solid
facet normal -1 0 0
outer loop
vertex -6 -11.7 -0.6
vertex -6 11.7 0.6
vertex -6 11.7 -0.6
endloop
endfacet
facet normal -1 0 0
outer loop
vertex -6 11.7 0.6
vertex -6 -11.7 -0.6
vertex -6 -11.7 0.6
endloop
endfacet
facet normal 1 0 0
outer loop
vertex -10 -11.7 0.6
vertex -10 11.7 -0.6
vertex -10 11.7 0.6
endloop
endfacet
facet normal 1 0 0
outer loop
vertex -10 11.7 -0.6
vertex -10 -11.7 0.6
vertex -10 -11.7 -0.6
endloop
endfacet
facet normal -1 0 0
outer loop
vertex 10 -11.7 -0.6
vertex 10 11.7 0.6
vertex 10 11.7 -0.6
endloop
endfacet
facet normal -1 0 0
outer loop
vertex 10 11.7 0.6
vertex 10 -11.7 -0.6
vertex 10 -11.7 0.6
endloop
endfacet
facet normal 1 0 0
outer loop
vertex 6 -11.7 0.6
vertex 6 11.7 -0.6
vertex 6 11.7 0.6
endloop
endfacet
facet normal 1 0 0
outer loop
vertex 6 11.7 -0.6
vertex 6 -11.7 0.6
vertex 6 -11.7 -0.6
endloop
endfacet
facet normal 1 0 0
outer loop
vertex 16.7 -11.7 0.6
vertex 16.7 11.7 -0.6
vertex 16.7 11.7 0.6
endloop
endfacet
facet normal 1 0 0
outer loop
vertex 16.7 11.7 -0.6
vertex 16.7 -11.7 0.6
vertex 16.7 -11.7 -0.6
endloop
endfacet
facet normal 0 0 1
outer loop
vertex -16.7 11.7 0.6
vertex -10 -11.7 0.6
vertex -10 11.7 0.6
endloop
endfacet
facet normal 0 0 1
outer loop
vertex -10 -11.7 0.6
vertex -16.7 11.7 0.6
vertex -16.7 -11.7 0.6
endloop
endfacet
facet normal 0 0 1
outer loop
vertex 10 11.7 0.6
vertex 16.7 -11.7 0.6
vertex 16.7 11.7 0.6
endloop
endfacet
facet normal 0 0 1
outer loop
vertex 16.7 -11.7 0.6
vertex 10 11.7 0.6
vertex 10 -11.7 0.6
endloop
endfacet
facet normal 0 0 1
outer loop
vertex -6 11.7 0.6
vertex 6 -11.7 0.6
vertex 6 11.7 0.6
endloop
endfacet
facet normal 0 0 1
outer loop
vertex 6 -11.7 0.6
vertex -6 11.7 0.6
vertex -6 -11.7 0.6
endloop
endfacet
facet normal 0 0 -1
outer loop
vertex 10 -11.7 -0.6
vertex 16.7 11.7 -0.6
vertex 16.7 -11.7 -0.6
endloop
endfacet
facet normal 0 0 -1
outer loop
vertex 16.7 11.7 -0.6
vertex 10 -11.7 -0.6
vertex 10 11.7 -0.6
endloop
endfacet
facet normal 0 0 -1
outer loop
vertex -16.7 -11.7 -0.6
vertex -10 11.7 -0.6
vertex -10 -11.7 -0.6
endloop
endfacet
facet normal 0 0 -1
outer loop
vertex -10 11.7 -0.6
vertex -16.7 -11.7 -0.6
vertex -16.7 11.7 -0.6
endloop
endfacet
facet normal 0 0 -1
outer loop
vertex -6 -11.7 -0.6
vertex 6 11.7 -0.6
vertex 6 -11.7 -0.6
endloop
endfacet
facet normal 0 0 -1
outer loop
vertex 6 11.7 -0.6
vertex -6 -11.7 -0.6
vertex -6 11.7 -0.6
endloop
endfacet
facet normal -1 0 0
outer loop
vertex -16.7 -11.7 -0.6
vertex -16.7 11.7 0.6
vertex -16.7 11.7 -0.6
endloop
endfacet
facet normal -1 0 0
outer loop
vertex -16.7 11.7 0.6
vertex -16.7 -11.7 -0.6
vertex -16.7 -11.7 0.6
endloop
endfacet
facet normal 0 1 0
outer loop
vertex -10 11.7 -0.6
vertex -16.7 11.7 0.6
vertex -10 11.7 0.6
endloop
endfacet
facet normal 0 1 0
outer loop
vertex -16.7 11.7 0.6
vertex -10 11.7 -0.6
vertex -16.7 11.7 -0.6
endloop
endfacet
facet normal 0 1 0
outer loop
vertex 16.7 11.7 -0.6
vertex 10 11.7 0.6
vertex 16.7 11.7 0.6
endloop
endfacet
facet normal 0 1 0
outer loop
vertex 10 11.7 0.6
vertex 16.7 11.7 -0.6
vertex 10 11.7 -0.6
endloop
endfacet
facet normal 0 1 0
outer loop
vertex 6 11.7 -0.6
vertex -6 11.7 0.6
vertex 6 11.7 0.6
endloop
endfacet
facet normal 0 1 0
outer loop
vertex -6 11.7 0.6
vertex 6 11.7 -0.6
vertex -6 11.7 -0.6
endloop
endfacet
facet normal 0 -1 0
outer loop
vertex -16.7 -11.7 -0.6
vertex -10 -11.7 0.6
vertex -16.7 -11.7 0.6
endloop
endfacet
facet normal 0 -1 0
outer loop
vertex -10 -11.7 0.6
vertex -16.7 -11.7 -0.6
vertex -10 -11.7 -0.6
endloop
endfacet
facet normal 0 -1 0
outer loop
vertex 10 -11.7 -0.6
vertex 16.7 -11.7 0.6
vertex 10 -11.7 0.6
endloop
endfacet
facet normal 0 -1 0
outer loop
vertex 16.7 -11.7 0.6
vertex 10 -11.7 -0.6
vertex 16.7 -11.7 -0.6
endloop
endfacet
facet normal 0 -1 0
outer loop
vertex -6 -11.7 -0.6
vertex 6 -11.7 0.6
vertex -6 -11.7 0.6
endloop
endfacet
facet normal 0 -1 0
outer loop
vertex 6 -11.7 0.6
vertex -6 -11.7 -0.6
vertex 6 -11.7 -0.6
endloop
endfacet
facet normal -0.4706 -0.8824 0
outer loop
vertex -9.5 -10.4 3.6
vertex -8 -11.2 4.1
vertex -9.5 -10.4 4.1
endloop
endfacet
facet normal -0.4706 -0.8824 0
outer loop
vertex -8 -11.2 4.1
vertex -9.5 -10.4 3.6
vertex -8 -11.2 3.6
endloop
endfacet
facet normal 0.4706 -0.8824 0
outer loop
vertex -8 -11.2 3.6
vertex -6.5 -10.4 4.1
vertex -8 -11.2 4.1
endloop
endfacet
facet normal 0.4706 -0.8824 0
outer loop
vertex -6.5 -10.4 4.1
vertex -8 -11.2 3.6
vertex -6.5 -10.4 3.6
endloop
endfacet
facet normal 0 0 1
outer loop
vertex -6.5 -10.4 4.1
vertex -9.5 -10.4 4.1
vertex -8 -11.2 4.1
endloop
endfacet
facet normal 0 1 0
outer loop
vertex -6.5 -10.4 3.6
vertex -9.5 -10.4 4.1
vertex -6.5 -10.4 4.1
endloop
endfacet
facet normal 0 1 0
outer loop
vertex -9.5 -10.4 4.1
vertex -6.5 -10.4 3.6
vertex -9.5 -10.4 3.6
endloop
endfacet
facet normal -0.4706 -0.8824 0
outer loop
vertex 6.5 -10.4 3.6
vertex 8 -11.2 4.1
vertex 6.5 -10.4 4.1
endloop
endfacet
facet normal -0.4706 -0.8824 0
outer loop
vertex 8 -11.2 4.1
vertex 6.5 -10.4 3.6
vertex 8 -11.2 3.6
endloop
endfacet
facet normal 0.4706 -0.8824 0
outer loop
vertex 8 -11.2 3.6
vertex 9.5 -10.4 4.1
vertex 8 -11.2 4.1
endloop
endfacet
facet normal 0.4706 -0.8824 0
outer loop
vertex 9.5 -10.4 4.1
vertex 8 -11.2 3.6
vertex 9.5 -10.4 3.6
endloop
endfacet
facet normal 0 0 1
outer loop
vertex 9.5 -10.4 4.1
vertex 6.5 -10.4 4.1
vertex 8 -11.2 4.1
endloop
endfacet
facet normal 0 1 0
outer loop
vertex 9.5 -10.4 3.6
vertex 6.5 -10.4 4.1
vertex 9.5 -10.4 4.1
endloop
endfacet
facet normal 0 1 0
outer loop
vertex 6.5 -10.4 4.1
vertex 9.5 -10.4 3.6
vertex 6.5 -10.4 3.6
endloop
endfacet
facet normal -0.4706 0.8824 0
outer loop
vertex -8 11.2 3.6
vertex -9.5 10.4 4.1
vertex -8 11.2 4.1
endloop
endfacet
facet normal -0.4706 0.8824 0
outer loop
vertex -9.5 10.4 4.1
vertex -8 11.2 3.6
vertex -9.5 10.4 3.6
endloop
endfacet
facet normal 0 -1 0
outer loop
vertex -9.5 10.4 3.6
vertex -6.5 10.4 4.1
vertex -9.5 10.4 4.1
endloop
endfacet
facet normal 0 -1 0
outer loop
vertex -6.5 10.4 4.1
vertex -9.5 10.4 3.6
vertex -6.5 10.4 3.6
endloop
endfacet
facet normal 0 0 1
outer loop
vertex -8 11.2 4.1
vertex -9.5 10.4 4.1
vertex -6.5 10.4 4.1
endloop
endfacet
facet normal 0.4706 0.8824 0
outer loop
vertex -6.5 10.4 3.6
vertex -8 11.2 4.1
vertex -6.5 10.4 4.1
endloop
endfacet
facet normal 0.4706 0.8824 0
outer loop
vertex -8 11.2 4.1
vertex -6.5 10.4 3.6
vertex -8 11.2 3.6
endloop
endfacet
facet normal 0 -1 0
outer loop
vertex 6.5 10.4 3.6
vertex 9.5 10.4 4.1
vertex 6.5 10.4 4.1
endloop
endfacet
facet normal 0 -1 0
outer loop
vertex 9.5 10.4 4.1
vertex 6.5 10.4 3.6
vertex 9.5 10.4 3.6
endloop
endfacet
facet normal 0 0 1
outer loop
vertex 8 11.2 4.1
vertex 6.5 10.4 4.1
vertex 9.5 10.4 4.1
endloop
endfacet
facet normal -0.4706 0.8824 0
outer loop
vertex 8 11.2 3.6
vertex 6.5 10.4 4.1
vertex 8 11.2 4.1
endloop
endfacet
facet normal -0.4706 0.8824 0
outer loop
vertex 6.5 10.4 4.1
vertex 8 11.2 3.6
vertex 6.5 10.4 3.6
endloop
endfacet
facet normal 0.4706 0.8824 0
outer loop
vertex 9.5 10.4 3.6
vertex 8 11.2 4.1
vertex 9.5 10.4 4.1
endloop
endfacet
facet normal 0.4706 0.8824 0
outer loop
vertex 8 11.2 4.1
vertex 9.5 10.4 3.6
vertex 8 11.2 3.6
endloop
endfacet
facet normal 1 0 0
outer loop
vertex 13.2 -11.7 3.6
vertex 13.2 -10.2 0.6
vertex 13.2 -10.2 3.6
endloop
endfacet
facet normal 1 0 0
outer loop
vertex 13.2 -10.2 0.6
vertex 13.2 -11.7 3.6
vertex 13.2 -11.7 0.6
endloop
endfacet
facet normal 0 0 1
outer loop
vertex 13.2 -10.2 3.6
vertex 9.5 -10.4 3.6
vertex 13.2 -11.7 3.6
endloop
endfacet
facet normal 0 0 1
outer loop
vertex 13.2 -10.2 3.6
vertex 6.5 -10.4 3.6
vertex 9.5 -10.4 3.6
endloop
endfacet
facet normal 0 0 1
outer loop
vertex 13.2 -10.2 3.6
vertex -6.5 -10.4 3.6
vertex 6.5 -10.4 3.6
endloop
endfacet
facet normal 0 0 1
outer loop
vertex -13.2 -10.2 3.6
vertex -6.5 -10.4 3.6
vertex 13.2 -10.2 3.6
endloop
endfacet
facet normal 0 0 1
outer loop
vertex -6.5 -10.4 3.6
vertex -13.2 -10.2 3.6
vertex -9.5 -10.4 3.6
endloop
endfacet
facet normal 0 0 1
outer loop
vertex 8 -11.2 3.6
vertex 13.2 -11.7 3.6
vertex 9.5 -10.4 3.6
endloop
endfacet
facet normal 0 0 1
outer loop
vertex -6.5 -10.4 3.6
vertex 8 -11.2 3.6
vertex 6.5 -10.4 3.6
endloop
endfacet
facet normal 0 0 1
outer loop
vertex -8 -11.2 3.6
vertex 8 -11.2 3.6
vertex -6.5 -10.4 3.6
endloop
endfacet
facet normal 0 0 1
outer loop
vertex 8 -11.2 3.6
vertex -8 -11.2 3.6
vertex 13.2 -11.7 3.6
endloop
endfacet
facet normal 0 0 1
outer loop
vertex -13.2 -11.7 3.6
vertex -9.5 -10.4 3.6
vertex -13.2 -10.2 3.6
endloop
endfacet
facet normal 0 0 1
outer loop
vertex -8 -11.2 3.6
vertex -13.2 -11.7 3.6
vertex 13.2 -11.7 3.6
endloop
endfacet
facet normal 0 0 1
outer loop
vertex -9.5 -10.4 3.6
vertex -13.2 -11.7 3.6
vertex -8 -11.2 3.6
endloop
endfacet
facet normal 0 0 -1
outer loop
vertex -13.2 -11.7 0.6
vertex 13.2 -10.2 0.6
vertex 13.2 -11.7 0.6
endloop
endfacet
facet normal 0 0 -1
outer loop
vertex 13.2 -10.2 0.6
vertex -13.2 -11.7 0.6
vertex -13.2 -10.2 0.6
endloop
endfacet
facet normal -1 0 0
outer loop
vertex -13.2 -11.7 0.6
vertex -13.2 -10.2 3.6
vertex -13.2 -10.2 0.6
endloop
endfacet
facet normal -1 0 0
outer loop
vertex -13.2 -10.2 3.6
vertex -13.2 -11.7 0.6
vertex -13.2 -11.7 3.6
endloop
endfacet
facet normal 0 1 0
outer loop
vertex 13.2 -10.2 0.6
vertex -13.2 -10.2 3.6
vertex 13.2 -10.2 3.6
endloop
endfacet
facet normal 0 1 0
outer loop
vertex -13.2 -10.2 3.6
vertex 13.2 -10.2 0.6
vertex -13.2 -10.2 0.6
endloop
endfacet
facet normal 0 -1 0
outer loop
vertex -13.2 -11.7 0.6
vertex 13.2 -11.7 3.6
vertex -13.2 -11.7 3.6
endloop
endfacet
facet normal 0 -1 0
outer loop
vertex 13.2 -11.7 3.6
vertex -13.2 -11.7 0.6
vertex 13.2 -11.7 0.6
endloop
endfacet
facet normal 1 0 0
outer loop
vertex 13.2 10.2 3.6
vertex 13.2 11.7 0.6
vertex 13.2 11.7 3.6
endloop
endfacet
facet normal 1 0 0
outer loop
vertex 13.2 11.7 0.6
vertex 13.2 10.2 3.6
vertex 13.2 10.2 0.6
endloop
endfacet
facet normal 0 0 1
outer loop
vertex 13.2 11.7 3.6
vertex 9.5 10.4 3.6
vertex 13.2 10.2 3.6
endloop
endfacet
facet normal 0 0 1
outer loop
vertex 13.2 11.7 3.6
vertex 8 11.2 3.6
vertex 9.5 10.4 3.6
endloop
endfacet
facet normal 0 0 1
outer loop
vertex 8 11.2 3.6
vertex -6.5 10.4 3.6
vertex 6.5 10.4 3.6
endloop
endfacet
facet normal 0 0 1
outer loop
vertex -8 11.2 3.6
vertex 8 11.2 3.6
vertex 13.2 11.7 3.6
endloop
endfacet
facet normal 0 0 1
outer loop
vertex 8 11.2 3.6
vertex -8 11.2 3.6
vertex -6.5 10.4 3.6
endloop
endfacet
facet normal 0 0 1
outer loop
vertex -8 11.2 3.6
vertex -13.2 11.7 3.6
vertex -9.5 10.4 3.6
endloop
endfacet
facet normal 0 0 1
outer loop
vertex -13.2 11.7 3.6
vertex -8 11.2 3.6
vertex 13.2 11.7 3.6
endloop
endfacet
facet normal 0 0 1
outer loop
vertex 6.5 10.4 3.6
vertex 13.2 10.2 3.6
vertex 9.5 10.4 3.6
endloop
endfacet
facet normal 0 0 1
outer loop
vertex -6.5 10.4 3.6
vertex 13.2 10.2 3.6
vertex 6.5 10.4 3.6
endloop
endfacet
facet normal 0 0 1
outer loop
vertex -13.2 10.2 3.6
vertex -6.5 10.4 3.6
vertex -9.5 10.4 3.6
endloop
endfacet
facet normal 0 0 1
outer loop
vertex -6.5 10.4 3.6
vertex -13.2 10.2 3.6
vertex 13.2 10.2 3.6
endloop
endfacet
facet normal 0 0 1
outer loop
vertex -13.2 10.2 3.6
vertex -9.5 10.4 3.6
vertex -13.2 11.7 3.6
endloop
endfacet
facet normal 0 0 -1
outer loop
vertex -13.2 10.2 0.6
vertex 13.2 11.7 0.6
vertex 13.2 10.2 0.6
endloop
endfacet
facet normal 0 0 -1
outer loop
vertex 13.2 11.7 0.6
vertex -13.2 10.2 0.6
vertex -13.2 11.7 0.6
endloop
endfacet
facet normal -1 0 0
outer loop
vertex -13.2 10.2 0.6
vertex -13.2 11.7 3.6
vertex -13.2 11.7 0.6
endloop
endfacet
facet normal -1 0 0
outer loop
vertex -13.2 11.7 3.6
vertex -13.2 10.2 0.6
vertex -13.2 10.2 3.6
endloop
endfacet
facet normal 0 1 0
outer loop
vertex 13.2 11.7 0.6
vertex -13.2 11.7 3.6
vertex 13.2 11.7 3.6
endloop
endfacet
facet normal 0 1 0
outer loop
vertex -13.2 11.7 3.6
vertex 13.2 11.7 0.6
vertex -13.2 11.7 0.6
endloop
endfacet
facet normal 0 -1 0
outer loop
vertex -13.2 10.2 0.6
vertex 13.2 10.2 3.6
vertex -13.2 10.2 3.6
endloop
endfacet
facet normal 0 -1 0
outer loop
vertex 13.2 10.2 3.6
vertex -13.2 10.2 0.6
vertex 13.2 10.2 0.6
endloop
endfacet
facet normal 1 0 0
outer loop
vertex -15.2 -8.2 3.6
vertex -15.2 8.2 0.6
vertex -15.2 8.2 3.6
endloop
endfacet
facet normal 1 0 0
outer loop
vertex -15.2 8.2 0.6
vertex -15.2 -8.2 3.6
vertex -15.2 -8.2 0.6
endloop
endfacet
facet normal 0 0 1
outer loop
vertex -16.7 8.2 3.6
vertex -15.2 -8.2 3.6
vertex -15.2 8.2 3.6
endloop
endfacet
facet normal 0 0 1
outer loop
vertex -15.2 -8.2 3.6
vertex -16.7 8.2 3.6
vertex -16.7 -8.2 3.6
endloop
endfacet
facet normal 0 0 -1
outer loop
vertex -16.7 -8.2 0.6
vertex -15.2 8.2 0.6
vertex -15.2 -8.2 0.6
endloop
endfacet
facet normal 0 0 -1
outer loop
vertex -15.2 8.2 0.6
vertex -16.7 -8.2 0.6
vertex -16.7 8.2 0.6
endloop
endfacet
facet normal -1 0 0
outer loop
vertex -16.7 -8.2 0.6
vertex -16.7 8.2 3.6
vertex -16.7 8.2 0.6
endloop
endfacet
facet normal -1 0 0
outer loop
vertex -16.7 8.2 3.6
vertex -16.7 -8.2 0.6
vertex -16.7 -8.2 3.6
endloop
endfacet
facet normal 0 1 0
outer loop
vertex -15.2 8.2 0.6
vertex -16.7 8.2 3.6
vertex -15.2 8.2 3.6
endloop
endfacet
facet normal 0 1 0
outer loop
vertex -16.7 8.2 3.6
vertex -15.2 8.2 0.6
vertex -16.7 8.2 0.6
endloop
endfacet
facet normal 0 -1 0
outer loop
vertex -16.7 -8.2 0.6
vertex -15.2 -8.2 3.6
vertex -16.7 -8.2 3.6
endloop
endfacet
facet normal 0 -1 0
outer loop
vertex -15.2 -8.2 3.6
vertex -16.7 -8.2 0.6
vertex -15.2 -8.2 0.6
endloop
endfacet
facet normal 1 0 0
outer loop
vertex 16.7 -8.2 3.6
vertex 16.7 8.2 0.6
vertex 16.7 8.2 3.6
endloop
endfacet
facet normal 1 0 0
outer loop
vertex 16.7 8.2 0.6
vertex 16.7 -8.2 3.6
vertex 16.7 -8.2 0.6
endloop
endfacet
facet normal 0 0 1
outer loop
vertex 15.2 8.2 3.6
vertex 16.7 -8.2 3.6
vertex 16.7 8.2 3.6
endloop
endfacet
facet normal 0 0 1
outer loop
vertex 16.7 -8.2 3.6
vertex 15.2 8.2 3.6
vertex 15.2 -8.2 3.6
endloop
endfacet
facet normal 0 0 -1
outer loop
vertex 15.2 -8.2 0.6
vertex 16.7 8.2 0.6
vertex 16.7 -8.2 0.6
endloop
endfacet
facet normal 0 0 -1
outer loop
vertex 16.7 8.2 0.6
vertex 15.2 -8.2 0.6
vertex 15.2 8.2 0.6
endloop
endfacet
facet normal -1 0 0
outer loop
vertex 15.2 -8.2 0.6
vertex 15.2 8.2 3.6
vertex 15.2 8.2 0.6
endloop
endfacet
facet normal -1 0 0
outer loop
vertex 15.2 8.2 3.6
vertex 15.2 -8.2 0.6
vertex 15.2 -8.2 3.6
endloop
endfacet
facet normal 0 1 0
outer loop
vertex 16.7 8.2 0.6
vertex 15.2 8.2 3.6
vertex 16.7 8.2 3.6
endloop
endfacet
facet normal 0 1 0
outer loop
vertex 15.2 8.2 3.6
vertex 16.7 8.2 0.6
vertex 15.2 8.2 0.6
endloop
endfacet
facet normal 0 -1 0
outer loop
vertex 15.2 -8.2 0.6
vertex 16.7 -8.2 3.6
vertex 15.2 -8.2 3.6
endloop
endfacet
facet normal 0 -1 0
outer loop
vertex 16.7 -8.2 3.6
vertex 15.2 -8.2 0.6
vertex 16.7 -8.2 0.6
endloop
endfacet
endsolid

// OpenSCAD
// RWC Energy Core - Square Edition
// Part 4: Battery Tray
// Holds 30x20x5mm LiPo battery inside bottom shell
$fn = 30;

bat_w = 30.4;  // battery width + tolerance
bat_d = 20.4;  // battery depth + tolerance
bat_h = 5;
tray_wall = 1.5;
clip_h = 3;    // clip height (doesn't cover full battery)
wire_slot_w = 4;
wire_slot_d = 1.5;

module battery_tray() {
    // Base plate
    difference() {
        cube([bat_w + tray_wall*2, bat_d + tray_wall*2, 1.2], center=true);
        
        // Wire routing channels (2 slots on bottom)
        for (x = [-8, 8])
            translate([x, 0, 0])
                cube([wire_slot_w, bat_d + tray_wall*2 + 0.2, wire_slot_d], center=true);
    }
    
    // Side walls with clips
    translate([0, 0, 0.6]) {
        // Long sides (with flex clips)
        for (y = [-1, 1]) {
            translate([0, y * (bat_d/2 + tray_wall/2), clip_h/2])
                cube([bat_w - 4, tray_wall, clip_h], center=true);
            
            // Inward-facing clip bumps (2 per side)
            for (x = [-8, 8])
                translate([x, y * (bat_d/2 + 0.2), clip_h - 0.5])
                    clip_bump(y);
        }
        
        // Short sides (solid)
        for (x = [-1, 1])
            translate([x * (bat_w/2 + tray_wall/2), 0, clip_h/2])
                cube([tray_wall, bat_d - 4, clip_h], center=true);
    }
}

module clip_bump(dir) {
    // Small triangular bump to retain battery
    scale([1, -dir, 1])
        translate([-1.5, 0, 0])
            linear_extrude(1)
                polygon([[0,0], [3,0], [1.5, -0.8]]);
}

battery_tray();
